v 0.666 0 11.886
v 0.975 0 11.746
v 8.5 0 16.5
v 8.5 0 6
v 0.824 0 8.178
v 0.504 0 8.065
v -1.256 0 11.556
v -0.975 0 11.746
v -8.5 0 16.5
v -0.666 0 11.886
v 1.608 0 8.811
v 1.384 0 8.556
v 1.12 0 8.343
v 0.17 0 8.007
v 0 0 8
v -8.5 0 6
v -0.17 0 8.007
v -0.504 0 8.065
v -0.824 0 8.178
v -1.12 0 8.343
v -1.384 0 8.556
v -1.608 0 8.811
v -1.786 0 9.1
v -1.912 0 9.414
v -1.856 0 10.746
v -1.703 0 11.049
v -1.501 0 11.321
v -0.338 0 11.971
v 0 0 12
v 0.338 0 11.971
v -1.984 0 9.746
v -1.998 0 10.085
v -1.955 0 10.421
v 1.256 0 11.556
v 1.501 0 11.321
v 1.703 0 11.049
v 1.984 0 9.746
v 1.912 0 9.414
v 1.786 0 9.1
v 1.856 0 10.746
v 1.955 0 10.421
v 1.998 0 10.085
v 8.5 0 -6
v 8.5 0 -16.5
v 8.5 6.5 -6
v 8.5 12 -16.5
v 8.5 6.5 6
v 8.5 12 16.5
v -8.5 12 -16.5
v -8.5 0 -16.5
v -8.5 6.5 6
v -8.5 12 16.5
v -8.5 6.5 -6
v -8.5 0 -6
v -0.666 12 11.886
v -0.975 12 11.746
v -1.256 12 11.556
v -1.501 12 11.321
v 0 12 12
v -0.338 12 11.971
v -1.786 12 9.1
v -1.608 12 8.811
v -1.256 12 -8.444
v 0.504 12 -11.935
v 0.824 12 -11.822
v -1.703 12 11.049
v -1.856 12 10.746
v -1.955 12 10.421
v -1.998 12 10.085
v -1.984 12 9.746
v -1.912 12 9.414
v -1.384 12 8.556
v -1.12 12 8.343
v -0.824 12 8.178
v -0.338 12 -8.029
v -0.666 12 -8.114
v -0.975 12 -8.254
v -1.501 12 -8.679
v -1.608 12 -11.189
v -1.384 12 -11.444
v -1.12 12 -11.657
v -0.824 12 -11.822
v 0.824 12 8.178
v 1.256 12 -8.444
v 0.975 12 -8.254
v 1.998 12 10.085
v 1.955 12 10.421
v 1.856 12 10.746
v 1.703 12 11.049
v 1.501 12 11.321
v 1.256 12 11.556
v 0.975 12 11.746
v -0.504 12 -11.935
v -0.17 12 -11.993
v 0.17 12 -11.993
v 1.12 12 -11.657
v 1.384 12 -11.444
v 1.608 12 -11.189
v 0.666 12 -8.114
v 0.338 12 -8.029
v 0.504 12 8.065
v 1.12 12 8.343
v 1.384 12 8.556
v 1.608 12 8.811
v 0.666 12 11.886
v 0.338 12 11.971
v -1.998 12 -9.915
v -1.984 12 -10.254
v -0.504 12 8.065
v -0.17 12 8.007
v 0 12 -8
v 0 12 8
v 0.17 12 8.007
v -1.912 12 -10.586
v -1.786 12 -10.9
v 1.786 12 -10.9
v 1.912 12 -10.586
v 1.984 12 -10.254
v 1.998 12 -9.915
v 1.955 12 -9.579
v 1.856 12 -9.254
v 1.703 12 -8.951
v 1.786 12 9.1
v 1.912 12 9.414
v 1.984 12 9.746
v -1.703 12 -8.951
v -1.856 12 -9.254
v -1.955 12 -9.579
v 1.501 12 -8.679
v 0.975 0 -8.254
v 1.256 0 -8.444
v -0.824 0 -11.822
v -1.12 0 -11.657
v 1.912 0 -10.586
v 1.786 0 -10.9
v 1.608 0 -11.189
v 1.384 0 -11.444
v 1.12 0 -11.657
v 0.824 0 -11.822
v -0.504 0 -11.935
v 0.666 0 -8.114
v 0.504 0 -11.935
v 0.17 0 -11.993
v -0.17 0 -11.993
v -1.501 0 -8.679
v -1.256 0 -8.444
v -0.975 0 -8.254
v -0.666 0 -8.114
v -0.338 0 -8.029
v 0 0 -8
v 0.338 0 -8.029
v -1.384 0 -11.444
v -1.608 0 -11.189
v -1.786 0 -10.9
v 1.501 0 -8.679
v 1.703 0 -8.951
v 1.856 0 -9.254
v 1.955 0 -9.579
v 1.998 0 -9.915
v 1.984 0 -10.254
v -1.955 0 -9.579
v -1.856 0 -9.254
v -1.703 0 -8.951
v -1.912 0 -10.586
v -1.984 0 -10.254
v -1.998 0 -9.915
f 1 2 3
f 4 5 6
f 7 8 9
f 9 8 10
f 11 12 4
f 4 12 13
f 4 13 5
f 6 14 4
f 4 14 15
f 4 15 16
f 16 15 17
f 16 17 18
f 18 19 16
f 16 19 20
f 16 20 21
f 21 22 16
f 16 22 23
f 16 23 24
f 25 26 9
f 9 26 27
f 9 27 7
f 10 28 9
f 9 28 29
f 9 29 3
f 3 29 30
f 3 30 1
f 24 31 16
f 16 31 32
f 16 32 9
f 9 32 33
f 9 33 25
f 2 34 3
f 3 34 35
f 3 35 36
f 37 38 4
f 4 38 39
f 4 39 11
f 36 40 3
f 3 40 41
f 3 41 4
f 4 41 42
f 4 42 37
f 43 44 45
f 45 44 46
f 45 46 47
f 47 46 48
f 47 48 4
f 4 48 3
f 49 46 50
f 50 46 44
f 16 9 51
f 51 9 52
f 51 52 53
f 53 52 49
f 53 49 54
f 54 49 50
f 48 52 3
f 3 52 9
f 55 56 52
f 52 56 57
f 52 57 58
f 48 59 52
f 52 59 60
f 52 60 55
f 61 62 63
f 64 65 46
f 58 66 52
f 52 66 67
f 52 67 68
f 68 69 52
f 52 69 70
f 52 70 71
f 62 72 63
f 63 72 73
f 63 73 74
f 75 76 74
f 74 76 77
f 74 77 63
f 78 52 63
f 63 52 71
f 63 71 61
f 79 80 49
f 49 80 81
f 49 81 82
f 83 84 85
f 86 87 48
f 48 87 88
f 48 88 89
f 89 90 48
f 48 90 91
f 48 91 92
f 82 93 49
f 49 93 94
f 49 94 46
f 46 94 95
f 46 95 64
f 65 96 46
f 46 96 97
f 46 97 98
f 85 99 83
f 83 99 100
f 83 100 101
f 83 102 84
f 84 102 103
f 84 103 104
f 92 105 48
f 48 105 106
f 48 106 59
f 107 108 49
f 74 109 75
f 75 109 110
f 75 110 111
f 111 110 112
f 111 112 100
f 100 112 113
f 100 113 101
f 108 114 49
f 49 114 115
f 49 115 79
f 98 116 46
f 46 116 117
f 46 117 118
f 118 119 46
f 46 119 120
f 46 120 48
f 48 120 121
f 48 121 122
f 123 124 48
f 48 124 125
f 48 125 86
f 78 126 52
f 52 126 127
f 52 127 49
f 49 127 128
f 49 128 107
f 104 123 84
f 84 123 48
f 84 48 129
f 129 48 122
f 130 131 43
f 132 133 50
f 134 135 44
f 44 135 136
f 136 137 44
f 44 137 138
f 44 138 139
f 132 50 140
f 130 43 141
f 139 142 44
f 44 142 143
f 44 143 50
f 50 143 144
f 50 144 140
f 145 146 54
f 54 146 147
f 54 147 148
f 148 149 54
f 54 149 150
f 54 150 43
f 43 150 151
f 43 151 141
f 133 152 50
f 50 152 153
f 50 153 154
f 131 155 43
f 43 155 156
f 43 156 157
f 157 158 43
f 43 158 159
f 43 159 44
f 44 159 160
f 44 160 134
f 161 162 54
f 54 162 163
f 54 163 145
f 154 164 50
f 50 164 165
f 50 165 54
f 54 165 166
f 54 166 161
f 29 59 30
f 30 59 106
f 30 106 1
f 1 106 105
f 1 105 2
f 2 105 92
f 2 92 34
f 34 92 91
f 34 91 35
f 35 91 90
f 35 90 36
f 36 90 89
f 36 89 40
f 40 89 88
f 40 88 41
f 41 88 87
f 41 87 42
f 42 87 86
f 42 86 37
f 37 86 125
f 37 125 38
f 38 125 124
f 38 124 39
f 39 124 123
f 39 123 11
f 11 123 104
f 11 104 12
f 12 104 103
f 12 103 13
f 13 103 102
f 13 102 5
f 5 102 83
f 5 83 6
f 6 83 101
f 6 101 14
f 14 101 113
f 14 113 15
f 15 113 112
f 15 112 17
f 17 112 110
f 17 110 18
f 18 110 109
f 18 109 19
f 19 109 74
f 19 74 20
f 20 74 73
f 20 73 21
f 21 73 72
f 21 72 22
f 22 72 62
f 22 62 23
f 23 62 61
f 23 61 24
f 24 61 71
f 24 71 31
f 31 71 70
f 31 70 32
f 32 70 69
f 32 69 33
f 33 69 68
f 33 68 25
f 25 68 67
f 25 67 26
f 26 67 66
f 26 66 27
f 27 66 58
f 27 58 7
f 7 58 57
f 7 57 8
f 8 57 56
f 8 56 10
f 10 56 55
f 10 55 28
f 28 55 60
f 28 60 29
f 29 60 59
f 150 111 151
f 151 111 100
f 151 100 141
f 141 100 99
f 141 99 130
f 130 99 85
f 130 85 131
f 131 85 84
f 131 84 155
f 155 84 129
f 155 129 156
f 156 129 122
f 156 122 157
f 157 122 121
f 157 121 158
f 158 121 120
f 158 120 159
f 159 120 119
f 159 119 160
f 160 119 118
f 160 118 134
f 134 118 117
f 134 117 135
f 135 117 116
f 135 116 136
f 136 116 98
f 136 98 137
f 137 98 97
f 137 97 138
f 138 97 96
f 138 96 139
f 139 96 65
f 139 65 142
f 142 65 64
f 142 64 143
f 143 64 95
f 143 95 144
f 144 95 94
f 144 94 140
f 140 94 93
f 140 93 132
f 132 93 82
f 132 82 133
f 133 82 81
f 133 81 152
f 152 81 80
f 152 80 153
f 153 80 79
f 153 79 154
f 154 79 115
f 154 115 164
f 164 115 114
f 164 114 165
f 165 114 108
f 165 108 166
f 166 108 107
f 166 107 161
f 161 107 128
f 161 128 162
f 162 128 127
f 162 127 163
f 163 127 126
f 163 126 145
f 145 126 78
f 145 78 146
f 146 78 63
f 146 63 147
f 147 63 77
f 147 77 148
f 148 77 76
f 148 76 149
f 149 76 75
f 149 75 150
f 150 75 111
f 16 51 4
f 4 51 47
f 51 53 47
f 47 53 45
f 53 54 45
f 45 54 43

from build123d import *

# Parameters (mm, degrees)
CROQUIS1_W              = 17
CROQUIS1_H              = 33
SALIENTE_EXTRUIR1_DEPTH = 12
CROQUIS2_R              = 2
CORTAR_EXTRUIR1_DEPTH   = 23.102036105
CROQUIS3_W              = 12
CROQUIS3_H              = 6.5
CORTAR_EXTRUIR2_DEPTH   = 27.55654345


with BuildPart() as part:
    # Croquis1 → Saliente-Extruir1 (new body)
    with BuildSketch(Plane(origin=(0, 0, 0), x_dir=(1, 0, 0), z_dir=(0, 1, 0))):
        Rectangle(CROQUIS1_W, CROQUIS1_H)
    extrude(amount=SALIENTE_EXTRUIR1_DEPTH)

    # Croquis2 → Cortar-Extruir1 (cut, through all)
    with BuildSketch(Plane(origin=(0, 12, 0), x_dir=(1, 0, 0), z_dir=(0, 1, 0))):
        with Locations(Location((0, 10, 0), (0, 0, 270))):
            Circle(CROQUIS2_R)
        with Locations(Location((0, -10, 0), (0, 0, 90))):
            Circle(CROQUIS2_R)
    extrude(amount=-CORTAR_EXTRUIR1_DEPTH, mode=Mode.SUBTRACT)

    # Croquis3 → Cortar-Extruir2 (cut, through all)
    with BuildSketch(Plane(origin=(8.5, 0, 0), x_dir=(0, 0, -1), z_dir=(1, 0, 0))):
        with Locations((0, 3.25)):
            Rectangle(CROQUIS3_W, CROQUIS3_H)
    extrude(amount=-CORTAR_EXTRUIR2_DEPTH, mode=Mode.SUBTRACT)


solid = part.part
